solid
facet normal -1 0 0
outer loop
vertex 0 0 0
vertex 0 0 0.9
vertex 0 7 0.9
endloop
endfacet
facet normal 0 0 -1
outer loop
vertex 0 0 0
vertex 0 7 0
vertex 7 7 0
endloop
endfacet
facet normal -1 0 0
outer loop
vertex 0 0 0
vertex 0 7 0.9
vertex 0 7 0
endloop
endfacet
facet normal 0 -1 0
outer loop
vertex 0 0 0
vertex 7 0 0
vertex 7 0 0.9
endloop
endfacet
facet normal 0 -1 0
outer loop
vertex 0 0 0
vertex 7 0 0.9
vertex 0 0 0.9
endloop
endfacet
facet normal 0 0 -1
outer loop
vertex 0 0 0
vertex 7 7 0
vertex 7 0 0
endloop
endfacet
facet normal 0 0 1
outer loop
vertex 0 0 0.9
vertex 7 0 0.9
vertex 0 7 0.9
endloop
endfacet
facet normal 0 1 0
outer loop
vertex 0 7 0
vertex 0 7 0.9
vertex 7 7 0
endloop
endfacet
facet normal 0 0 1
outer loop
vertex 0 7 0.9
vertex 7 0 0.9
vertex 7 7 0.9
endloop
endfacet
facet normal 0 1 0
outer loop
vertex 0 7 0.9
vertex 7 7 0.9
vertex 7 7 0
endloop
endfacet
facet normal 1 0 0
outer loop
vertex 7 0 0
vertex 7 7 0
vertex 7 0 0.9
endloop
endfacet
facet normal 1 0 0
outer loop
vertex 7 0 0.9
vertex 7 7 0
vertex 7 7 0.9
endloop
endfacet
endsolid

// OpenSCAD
/* Warning, this is a very basic generator with a lot of approximation 
input data : [VQFN, VRX, 7x7x0.9mm, 48, , A, C04-00348A]
generated by com.zoubworld.electronics.cad.model3d.Basic
Date : Sun Feb 15 10:50:48 CET 2026
*/

//body
color("black")
translate([0,0,0])
cube([7.0,7.0,0.9], center=false);
